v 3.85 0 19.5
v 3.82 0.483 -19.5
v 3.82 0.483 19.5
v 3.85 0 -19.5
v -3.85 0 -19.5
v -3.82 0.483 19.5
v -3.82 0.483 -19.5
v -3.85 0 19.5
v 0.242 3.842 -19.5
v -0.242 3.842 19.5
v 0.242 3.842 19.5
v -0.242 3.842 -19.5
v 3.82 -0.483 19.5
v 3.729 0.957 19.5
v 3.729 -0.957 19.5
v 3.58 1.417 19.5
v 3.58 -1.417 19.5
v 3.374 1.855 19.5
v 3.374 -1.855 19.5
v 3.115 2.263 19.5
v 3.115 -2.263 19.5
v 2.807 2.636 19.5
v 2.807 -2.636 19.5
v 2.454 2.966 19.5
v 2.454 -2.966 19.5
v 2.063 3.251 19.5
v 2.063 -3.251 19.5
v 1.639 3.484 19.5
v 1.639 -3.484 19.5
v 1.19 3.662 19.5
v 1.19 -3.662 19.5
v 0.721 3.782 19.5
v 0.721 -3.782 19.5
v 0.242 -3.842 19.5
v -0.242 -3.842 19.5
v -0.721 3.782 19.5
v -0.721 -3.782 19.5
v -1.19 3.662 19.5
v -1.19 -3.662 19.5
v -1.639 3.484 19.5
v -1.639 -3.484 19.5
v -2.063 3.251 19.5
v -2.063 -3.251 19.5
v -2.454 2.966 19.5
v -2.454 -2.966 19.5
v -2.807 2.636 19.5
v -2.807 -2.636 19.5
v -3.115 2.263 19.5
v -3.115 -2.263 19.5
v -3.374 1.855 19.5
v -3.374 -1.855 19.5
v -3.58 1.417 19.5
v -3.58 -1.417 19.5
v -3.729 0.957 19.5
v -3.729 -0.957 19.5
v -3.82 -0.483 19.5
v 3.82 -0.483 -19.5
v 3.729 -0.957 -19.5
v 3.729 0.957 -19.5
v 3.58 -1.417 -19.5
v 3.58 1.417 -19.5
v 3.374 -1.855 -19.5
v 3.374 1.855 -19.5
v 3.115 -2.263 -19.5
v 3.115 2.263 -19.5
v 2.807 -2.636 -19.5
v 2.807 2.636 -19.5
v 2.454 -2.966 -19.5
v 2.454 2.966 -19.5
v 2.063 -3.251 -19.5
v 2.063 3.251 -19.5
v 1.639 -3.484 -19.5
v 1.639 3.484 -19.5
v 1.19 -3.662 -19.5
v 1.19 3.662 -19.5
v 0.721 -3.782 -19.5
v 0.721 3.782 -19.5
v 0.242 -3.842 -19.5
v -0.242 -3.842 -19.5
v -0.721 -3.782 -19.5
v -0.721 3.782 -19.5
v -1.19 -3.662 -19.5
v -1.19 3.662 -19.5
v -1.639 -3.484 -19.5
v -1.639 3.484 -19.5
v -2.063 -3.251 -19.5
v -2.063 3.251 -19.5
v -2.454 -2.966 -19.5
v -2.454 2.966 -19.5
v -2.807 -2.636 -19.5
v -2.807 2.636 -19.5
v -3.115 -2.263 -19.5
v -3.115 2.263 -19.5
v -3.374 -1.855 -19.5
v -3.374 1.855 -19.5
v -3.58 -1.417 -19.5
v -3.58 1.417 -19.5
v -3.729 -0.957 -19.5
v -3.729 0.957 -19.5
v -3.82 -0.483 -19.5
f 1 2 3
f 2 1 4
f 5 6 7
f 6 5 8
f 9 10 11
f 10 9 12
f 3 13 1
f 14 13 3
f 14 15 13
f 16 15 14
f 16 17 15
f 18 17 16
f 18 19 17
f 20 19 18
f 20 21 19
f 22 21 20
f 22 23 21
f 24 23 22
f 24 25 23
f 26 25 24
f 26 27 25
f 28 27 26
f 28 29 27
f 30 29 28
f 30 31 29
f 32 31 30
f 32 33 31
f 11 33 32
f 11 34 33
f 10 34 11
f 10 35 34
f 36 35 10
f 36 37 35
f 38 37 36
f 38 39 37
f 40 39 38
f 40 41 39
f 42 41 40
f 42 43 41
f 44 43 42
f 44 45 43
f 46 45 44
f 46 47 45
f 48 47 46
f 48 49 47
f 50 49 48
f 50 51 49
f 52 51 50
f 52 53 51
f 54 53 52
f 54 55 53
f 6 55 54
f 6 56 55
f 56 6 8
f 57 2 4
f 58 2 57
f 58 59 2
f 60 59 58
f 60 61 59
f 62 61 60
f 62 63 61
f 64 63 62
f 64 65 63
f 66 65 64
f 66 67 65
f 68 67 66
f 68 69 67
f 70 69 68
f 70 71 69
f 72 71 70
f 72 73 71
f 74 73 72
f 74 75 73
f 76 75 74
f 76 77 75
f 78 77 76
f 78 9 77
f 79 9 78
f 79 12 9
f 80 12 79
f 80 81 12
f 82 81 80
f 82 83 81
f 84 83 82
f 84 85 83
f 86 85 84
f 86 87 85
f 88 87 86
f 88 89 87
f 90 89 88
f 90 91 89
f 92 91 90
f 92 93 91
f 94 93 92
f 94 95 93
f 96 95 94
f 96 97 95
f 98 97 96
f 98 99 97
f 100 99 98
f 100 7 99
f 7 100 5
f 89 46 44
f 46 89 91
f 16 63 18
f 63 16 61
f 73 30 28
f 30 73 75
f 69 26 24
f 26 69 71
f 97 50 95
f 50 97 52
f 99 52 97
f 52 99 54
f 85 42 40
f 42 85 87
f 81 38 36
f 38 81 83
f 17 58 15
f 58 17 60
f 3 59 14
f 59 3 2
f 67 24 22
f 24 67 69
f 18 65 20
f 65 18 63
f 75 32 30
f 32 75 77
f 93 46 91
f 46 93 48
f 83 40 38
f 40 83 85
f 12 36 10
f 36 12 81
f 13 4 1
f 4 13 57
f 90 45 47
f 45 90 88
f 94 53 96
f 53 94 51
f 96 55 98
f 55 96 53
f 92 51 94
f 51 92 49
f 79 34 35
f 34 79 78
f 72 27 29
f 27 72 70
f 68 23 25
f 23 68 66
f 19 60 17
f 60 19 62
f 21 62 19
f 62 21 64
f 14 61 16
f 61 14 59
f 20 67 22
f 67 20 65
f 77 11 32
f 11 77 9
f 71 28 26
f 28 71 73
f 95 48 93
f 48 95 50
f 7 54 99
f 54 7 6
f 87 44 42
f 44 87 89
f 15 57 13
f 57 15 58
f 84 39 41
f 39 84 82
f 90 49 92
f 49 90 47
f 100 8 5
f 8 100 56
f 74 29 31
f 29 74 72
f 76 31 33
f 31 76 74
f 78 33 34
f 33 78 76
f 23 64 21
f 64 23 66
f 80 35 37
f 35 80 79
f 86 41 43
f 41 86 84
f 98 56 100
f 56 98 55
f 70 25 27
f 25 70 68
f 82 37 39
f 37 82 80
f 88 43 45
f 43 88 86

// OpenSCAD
$fn = 50;


difference() {
	union() {
		translate(v = [0, 0, -19.5000000000]) {
			cylinder(h = 39, r = 3.8500000000);
		}
	}
	union() {
		translate(v = [0, 0, -100.0000000000]) {
			cylinder(h = 200, r = 0);
		}
	}
}
